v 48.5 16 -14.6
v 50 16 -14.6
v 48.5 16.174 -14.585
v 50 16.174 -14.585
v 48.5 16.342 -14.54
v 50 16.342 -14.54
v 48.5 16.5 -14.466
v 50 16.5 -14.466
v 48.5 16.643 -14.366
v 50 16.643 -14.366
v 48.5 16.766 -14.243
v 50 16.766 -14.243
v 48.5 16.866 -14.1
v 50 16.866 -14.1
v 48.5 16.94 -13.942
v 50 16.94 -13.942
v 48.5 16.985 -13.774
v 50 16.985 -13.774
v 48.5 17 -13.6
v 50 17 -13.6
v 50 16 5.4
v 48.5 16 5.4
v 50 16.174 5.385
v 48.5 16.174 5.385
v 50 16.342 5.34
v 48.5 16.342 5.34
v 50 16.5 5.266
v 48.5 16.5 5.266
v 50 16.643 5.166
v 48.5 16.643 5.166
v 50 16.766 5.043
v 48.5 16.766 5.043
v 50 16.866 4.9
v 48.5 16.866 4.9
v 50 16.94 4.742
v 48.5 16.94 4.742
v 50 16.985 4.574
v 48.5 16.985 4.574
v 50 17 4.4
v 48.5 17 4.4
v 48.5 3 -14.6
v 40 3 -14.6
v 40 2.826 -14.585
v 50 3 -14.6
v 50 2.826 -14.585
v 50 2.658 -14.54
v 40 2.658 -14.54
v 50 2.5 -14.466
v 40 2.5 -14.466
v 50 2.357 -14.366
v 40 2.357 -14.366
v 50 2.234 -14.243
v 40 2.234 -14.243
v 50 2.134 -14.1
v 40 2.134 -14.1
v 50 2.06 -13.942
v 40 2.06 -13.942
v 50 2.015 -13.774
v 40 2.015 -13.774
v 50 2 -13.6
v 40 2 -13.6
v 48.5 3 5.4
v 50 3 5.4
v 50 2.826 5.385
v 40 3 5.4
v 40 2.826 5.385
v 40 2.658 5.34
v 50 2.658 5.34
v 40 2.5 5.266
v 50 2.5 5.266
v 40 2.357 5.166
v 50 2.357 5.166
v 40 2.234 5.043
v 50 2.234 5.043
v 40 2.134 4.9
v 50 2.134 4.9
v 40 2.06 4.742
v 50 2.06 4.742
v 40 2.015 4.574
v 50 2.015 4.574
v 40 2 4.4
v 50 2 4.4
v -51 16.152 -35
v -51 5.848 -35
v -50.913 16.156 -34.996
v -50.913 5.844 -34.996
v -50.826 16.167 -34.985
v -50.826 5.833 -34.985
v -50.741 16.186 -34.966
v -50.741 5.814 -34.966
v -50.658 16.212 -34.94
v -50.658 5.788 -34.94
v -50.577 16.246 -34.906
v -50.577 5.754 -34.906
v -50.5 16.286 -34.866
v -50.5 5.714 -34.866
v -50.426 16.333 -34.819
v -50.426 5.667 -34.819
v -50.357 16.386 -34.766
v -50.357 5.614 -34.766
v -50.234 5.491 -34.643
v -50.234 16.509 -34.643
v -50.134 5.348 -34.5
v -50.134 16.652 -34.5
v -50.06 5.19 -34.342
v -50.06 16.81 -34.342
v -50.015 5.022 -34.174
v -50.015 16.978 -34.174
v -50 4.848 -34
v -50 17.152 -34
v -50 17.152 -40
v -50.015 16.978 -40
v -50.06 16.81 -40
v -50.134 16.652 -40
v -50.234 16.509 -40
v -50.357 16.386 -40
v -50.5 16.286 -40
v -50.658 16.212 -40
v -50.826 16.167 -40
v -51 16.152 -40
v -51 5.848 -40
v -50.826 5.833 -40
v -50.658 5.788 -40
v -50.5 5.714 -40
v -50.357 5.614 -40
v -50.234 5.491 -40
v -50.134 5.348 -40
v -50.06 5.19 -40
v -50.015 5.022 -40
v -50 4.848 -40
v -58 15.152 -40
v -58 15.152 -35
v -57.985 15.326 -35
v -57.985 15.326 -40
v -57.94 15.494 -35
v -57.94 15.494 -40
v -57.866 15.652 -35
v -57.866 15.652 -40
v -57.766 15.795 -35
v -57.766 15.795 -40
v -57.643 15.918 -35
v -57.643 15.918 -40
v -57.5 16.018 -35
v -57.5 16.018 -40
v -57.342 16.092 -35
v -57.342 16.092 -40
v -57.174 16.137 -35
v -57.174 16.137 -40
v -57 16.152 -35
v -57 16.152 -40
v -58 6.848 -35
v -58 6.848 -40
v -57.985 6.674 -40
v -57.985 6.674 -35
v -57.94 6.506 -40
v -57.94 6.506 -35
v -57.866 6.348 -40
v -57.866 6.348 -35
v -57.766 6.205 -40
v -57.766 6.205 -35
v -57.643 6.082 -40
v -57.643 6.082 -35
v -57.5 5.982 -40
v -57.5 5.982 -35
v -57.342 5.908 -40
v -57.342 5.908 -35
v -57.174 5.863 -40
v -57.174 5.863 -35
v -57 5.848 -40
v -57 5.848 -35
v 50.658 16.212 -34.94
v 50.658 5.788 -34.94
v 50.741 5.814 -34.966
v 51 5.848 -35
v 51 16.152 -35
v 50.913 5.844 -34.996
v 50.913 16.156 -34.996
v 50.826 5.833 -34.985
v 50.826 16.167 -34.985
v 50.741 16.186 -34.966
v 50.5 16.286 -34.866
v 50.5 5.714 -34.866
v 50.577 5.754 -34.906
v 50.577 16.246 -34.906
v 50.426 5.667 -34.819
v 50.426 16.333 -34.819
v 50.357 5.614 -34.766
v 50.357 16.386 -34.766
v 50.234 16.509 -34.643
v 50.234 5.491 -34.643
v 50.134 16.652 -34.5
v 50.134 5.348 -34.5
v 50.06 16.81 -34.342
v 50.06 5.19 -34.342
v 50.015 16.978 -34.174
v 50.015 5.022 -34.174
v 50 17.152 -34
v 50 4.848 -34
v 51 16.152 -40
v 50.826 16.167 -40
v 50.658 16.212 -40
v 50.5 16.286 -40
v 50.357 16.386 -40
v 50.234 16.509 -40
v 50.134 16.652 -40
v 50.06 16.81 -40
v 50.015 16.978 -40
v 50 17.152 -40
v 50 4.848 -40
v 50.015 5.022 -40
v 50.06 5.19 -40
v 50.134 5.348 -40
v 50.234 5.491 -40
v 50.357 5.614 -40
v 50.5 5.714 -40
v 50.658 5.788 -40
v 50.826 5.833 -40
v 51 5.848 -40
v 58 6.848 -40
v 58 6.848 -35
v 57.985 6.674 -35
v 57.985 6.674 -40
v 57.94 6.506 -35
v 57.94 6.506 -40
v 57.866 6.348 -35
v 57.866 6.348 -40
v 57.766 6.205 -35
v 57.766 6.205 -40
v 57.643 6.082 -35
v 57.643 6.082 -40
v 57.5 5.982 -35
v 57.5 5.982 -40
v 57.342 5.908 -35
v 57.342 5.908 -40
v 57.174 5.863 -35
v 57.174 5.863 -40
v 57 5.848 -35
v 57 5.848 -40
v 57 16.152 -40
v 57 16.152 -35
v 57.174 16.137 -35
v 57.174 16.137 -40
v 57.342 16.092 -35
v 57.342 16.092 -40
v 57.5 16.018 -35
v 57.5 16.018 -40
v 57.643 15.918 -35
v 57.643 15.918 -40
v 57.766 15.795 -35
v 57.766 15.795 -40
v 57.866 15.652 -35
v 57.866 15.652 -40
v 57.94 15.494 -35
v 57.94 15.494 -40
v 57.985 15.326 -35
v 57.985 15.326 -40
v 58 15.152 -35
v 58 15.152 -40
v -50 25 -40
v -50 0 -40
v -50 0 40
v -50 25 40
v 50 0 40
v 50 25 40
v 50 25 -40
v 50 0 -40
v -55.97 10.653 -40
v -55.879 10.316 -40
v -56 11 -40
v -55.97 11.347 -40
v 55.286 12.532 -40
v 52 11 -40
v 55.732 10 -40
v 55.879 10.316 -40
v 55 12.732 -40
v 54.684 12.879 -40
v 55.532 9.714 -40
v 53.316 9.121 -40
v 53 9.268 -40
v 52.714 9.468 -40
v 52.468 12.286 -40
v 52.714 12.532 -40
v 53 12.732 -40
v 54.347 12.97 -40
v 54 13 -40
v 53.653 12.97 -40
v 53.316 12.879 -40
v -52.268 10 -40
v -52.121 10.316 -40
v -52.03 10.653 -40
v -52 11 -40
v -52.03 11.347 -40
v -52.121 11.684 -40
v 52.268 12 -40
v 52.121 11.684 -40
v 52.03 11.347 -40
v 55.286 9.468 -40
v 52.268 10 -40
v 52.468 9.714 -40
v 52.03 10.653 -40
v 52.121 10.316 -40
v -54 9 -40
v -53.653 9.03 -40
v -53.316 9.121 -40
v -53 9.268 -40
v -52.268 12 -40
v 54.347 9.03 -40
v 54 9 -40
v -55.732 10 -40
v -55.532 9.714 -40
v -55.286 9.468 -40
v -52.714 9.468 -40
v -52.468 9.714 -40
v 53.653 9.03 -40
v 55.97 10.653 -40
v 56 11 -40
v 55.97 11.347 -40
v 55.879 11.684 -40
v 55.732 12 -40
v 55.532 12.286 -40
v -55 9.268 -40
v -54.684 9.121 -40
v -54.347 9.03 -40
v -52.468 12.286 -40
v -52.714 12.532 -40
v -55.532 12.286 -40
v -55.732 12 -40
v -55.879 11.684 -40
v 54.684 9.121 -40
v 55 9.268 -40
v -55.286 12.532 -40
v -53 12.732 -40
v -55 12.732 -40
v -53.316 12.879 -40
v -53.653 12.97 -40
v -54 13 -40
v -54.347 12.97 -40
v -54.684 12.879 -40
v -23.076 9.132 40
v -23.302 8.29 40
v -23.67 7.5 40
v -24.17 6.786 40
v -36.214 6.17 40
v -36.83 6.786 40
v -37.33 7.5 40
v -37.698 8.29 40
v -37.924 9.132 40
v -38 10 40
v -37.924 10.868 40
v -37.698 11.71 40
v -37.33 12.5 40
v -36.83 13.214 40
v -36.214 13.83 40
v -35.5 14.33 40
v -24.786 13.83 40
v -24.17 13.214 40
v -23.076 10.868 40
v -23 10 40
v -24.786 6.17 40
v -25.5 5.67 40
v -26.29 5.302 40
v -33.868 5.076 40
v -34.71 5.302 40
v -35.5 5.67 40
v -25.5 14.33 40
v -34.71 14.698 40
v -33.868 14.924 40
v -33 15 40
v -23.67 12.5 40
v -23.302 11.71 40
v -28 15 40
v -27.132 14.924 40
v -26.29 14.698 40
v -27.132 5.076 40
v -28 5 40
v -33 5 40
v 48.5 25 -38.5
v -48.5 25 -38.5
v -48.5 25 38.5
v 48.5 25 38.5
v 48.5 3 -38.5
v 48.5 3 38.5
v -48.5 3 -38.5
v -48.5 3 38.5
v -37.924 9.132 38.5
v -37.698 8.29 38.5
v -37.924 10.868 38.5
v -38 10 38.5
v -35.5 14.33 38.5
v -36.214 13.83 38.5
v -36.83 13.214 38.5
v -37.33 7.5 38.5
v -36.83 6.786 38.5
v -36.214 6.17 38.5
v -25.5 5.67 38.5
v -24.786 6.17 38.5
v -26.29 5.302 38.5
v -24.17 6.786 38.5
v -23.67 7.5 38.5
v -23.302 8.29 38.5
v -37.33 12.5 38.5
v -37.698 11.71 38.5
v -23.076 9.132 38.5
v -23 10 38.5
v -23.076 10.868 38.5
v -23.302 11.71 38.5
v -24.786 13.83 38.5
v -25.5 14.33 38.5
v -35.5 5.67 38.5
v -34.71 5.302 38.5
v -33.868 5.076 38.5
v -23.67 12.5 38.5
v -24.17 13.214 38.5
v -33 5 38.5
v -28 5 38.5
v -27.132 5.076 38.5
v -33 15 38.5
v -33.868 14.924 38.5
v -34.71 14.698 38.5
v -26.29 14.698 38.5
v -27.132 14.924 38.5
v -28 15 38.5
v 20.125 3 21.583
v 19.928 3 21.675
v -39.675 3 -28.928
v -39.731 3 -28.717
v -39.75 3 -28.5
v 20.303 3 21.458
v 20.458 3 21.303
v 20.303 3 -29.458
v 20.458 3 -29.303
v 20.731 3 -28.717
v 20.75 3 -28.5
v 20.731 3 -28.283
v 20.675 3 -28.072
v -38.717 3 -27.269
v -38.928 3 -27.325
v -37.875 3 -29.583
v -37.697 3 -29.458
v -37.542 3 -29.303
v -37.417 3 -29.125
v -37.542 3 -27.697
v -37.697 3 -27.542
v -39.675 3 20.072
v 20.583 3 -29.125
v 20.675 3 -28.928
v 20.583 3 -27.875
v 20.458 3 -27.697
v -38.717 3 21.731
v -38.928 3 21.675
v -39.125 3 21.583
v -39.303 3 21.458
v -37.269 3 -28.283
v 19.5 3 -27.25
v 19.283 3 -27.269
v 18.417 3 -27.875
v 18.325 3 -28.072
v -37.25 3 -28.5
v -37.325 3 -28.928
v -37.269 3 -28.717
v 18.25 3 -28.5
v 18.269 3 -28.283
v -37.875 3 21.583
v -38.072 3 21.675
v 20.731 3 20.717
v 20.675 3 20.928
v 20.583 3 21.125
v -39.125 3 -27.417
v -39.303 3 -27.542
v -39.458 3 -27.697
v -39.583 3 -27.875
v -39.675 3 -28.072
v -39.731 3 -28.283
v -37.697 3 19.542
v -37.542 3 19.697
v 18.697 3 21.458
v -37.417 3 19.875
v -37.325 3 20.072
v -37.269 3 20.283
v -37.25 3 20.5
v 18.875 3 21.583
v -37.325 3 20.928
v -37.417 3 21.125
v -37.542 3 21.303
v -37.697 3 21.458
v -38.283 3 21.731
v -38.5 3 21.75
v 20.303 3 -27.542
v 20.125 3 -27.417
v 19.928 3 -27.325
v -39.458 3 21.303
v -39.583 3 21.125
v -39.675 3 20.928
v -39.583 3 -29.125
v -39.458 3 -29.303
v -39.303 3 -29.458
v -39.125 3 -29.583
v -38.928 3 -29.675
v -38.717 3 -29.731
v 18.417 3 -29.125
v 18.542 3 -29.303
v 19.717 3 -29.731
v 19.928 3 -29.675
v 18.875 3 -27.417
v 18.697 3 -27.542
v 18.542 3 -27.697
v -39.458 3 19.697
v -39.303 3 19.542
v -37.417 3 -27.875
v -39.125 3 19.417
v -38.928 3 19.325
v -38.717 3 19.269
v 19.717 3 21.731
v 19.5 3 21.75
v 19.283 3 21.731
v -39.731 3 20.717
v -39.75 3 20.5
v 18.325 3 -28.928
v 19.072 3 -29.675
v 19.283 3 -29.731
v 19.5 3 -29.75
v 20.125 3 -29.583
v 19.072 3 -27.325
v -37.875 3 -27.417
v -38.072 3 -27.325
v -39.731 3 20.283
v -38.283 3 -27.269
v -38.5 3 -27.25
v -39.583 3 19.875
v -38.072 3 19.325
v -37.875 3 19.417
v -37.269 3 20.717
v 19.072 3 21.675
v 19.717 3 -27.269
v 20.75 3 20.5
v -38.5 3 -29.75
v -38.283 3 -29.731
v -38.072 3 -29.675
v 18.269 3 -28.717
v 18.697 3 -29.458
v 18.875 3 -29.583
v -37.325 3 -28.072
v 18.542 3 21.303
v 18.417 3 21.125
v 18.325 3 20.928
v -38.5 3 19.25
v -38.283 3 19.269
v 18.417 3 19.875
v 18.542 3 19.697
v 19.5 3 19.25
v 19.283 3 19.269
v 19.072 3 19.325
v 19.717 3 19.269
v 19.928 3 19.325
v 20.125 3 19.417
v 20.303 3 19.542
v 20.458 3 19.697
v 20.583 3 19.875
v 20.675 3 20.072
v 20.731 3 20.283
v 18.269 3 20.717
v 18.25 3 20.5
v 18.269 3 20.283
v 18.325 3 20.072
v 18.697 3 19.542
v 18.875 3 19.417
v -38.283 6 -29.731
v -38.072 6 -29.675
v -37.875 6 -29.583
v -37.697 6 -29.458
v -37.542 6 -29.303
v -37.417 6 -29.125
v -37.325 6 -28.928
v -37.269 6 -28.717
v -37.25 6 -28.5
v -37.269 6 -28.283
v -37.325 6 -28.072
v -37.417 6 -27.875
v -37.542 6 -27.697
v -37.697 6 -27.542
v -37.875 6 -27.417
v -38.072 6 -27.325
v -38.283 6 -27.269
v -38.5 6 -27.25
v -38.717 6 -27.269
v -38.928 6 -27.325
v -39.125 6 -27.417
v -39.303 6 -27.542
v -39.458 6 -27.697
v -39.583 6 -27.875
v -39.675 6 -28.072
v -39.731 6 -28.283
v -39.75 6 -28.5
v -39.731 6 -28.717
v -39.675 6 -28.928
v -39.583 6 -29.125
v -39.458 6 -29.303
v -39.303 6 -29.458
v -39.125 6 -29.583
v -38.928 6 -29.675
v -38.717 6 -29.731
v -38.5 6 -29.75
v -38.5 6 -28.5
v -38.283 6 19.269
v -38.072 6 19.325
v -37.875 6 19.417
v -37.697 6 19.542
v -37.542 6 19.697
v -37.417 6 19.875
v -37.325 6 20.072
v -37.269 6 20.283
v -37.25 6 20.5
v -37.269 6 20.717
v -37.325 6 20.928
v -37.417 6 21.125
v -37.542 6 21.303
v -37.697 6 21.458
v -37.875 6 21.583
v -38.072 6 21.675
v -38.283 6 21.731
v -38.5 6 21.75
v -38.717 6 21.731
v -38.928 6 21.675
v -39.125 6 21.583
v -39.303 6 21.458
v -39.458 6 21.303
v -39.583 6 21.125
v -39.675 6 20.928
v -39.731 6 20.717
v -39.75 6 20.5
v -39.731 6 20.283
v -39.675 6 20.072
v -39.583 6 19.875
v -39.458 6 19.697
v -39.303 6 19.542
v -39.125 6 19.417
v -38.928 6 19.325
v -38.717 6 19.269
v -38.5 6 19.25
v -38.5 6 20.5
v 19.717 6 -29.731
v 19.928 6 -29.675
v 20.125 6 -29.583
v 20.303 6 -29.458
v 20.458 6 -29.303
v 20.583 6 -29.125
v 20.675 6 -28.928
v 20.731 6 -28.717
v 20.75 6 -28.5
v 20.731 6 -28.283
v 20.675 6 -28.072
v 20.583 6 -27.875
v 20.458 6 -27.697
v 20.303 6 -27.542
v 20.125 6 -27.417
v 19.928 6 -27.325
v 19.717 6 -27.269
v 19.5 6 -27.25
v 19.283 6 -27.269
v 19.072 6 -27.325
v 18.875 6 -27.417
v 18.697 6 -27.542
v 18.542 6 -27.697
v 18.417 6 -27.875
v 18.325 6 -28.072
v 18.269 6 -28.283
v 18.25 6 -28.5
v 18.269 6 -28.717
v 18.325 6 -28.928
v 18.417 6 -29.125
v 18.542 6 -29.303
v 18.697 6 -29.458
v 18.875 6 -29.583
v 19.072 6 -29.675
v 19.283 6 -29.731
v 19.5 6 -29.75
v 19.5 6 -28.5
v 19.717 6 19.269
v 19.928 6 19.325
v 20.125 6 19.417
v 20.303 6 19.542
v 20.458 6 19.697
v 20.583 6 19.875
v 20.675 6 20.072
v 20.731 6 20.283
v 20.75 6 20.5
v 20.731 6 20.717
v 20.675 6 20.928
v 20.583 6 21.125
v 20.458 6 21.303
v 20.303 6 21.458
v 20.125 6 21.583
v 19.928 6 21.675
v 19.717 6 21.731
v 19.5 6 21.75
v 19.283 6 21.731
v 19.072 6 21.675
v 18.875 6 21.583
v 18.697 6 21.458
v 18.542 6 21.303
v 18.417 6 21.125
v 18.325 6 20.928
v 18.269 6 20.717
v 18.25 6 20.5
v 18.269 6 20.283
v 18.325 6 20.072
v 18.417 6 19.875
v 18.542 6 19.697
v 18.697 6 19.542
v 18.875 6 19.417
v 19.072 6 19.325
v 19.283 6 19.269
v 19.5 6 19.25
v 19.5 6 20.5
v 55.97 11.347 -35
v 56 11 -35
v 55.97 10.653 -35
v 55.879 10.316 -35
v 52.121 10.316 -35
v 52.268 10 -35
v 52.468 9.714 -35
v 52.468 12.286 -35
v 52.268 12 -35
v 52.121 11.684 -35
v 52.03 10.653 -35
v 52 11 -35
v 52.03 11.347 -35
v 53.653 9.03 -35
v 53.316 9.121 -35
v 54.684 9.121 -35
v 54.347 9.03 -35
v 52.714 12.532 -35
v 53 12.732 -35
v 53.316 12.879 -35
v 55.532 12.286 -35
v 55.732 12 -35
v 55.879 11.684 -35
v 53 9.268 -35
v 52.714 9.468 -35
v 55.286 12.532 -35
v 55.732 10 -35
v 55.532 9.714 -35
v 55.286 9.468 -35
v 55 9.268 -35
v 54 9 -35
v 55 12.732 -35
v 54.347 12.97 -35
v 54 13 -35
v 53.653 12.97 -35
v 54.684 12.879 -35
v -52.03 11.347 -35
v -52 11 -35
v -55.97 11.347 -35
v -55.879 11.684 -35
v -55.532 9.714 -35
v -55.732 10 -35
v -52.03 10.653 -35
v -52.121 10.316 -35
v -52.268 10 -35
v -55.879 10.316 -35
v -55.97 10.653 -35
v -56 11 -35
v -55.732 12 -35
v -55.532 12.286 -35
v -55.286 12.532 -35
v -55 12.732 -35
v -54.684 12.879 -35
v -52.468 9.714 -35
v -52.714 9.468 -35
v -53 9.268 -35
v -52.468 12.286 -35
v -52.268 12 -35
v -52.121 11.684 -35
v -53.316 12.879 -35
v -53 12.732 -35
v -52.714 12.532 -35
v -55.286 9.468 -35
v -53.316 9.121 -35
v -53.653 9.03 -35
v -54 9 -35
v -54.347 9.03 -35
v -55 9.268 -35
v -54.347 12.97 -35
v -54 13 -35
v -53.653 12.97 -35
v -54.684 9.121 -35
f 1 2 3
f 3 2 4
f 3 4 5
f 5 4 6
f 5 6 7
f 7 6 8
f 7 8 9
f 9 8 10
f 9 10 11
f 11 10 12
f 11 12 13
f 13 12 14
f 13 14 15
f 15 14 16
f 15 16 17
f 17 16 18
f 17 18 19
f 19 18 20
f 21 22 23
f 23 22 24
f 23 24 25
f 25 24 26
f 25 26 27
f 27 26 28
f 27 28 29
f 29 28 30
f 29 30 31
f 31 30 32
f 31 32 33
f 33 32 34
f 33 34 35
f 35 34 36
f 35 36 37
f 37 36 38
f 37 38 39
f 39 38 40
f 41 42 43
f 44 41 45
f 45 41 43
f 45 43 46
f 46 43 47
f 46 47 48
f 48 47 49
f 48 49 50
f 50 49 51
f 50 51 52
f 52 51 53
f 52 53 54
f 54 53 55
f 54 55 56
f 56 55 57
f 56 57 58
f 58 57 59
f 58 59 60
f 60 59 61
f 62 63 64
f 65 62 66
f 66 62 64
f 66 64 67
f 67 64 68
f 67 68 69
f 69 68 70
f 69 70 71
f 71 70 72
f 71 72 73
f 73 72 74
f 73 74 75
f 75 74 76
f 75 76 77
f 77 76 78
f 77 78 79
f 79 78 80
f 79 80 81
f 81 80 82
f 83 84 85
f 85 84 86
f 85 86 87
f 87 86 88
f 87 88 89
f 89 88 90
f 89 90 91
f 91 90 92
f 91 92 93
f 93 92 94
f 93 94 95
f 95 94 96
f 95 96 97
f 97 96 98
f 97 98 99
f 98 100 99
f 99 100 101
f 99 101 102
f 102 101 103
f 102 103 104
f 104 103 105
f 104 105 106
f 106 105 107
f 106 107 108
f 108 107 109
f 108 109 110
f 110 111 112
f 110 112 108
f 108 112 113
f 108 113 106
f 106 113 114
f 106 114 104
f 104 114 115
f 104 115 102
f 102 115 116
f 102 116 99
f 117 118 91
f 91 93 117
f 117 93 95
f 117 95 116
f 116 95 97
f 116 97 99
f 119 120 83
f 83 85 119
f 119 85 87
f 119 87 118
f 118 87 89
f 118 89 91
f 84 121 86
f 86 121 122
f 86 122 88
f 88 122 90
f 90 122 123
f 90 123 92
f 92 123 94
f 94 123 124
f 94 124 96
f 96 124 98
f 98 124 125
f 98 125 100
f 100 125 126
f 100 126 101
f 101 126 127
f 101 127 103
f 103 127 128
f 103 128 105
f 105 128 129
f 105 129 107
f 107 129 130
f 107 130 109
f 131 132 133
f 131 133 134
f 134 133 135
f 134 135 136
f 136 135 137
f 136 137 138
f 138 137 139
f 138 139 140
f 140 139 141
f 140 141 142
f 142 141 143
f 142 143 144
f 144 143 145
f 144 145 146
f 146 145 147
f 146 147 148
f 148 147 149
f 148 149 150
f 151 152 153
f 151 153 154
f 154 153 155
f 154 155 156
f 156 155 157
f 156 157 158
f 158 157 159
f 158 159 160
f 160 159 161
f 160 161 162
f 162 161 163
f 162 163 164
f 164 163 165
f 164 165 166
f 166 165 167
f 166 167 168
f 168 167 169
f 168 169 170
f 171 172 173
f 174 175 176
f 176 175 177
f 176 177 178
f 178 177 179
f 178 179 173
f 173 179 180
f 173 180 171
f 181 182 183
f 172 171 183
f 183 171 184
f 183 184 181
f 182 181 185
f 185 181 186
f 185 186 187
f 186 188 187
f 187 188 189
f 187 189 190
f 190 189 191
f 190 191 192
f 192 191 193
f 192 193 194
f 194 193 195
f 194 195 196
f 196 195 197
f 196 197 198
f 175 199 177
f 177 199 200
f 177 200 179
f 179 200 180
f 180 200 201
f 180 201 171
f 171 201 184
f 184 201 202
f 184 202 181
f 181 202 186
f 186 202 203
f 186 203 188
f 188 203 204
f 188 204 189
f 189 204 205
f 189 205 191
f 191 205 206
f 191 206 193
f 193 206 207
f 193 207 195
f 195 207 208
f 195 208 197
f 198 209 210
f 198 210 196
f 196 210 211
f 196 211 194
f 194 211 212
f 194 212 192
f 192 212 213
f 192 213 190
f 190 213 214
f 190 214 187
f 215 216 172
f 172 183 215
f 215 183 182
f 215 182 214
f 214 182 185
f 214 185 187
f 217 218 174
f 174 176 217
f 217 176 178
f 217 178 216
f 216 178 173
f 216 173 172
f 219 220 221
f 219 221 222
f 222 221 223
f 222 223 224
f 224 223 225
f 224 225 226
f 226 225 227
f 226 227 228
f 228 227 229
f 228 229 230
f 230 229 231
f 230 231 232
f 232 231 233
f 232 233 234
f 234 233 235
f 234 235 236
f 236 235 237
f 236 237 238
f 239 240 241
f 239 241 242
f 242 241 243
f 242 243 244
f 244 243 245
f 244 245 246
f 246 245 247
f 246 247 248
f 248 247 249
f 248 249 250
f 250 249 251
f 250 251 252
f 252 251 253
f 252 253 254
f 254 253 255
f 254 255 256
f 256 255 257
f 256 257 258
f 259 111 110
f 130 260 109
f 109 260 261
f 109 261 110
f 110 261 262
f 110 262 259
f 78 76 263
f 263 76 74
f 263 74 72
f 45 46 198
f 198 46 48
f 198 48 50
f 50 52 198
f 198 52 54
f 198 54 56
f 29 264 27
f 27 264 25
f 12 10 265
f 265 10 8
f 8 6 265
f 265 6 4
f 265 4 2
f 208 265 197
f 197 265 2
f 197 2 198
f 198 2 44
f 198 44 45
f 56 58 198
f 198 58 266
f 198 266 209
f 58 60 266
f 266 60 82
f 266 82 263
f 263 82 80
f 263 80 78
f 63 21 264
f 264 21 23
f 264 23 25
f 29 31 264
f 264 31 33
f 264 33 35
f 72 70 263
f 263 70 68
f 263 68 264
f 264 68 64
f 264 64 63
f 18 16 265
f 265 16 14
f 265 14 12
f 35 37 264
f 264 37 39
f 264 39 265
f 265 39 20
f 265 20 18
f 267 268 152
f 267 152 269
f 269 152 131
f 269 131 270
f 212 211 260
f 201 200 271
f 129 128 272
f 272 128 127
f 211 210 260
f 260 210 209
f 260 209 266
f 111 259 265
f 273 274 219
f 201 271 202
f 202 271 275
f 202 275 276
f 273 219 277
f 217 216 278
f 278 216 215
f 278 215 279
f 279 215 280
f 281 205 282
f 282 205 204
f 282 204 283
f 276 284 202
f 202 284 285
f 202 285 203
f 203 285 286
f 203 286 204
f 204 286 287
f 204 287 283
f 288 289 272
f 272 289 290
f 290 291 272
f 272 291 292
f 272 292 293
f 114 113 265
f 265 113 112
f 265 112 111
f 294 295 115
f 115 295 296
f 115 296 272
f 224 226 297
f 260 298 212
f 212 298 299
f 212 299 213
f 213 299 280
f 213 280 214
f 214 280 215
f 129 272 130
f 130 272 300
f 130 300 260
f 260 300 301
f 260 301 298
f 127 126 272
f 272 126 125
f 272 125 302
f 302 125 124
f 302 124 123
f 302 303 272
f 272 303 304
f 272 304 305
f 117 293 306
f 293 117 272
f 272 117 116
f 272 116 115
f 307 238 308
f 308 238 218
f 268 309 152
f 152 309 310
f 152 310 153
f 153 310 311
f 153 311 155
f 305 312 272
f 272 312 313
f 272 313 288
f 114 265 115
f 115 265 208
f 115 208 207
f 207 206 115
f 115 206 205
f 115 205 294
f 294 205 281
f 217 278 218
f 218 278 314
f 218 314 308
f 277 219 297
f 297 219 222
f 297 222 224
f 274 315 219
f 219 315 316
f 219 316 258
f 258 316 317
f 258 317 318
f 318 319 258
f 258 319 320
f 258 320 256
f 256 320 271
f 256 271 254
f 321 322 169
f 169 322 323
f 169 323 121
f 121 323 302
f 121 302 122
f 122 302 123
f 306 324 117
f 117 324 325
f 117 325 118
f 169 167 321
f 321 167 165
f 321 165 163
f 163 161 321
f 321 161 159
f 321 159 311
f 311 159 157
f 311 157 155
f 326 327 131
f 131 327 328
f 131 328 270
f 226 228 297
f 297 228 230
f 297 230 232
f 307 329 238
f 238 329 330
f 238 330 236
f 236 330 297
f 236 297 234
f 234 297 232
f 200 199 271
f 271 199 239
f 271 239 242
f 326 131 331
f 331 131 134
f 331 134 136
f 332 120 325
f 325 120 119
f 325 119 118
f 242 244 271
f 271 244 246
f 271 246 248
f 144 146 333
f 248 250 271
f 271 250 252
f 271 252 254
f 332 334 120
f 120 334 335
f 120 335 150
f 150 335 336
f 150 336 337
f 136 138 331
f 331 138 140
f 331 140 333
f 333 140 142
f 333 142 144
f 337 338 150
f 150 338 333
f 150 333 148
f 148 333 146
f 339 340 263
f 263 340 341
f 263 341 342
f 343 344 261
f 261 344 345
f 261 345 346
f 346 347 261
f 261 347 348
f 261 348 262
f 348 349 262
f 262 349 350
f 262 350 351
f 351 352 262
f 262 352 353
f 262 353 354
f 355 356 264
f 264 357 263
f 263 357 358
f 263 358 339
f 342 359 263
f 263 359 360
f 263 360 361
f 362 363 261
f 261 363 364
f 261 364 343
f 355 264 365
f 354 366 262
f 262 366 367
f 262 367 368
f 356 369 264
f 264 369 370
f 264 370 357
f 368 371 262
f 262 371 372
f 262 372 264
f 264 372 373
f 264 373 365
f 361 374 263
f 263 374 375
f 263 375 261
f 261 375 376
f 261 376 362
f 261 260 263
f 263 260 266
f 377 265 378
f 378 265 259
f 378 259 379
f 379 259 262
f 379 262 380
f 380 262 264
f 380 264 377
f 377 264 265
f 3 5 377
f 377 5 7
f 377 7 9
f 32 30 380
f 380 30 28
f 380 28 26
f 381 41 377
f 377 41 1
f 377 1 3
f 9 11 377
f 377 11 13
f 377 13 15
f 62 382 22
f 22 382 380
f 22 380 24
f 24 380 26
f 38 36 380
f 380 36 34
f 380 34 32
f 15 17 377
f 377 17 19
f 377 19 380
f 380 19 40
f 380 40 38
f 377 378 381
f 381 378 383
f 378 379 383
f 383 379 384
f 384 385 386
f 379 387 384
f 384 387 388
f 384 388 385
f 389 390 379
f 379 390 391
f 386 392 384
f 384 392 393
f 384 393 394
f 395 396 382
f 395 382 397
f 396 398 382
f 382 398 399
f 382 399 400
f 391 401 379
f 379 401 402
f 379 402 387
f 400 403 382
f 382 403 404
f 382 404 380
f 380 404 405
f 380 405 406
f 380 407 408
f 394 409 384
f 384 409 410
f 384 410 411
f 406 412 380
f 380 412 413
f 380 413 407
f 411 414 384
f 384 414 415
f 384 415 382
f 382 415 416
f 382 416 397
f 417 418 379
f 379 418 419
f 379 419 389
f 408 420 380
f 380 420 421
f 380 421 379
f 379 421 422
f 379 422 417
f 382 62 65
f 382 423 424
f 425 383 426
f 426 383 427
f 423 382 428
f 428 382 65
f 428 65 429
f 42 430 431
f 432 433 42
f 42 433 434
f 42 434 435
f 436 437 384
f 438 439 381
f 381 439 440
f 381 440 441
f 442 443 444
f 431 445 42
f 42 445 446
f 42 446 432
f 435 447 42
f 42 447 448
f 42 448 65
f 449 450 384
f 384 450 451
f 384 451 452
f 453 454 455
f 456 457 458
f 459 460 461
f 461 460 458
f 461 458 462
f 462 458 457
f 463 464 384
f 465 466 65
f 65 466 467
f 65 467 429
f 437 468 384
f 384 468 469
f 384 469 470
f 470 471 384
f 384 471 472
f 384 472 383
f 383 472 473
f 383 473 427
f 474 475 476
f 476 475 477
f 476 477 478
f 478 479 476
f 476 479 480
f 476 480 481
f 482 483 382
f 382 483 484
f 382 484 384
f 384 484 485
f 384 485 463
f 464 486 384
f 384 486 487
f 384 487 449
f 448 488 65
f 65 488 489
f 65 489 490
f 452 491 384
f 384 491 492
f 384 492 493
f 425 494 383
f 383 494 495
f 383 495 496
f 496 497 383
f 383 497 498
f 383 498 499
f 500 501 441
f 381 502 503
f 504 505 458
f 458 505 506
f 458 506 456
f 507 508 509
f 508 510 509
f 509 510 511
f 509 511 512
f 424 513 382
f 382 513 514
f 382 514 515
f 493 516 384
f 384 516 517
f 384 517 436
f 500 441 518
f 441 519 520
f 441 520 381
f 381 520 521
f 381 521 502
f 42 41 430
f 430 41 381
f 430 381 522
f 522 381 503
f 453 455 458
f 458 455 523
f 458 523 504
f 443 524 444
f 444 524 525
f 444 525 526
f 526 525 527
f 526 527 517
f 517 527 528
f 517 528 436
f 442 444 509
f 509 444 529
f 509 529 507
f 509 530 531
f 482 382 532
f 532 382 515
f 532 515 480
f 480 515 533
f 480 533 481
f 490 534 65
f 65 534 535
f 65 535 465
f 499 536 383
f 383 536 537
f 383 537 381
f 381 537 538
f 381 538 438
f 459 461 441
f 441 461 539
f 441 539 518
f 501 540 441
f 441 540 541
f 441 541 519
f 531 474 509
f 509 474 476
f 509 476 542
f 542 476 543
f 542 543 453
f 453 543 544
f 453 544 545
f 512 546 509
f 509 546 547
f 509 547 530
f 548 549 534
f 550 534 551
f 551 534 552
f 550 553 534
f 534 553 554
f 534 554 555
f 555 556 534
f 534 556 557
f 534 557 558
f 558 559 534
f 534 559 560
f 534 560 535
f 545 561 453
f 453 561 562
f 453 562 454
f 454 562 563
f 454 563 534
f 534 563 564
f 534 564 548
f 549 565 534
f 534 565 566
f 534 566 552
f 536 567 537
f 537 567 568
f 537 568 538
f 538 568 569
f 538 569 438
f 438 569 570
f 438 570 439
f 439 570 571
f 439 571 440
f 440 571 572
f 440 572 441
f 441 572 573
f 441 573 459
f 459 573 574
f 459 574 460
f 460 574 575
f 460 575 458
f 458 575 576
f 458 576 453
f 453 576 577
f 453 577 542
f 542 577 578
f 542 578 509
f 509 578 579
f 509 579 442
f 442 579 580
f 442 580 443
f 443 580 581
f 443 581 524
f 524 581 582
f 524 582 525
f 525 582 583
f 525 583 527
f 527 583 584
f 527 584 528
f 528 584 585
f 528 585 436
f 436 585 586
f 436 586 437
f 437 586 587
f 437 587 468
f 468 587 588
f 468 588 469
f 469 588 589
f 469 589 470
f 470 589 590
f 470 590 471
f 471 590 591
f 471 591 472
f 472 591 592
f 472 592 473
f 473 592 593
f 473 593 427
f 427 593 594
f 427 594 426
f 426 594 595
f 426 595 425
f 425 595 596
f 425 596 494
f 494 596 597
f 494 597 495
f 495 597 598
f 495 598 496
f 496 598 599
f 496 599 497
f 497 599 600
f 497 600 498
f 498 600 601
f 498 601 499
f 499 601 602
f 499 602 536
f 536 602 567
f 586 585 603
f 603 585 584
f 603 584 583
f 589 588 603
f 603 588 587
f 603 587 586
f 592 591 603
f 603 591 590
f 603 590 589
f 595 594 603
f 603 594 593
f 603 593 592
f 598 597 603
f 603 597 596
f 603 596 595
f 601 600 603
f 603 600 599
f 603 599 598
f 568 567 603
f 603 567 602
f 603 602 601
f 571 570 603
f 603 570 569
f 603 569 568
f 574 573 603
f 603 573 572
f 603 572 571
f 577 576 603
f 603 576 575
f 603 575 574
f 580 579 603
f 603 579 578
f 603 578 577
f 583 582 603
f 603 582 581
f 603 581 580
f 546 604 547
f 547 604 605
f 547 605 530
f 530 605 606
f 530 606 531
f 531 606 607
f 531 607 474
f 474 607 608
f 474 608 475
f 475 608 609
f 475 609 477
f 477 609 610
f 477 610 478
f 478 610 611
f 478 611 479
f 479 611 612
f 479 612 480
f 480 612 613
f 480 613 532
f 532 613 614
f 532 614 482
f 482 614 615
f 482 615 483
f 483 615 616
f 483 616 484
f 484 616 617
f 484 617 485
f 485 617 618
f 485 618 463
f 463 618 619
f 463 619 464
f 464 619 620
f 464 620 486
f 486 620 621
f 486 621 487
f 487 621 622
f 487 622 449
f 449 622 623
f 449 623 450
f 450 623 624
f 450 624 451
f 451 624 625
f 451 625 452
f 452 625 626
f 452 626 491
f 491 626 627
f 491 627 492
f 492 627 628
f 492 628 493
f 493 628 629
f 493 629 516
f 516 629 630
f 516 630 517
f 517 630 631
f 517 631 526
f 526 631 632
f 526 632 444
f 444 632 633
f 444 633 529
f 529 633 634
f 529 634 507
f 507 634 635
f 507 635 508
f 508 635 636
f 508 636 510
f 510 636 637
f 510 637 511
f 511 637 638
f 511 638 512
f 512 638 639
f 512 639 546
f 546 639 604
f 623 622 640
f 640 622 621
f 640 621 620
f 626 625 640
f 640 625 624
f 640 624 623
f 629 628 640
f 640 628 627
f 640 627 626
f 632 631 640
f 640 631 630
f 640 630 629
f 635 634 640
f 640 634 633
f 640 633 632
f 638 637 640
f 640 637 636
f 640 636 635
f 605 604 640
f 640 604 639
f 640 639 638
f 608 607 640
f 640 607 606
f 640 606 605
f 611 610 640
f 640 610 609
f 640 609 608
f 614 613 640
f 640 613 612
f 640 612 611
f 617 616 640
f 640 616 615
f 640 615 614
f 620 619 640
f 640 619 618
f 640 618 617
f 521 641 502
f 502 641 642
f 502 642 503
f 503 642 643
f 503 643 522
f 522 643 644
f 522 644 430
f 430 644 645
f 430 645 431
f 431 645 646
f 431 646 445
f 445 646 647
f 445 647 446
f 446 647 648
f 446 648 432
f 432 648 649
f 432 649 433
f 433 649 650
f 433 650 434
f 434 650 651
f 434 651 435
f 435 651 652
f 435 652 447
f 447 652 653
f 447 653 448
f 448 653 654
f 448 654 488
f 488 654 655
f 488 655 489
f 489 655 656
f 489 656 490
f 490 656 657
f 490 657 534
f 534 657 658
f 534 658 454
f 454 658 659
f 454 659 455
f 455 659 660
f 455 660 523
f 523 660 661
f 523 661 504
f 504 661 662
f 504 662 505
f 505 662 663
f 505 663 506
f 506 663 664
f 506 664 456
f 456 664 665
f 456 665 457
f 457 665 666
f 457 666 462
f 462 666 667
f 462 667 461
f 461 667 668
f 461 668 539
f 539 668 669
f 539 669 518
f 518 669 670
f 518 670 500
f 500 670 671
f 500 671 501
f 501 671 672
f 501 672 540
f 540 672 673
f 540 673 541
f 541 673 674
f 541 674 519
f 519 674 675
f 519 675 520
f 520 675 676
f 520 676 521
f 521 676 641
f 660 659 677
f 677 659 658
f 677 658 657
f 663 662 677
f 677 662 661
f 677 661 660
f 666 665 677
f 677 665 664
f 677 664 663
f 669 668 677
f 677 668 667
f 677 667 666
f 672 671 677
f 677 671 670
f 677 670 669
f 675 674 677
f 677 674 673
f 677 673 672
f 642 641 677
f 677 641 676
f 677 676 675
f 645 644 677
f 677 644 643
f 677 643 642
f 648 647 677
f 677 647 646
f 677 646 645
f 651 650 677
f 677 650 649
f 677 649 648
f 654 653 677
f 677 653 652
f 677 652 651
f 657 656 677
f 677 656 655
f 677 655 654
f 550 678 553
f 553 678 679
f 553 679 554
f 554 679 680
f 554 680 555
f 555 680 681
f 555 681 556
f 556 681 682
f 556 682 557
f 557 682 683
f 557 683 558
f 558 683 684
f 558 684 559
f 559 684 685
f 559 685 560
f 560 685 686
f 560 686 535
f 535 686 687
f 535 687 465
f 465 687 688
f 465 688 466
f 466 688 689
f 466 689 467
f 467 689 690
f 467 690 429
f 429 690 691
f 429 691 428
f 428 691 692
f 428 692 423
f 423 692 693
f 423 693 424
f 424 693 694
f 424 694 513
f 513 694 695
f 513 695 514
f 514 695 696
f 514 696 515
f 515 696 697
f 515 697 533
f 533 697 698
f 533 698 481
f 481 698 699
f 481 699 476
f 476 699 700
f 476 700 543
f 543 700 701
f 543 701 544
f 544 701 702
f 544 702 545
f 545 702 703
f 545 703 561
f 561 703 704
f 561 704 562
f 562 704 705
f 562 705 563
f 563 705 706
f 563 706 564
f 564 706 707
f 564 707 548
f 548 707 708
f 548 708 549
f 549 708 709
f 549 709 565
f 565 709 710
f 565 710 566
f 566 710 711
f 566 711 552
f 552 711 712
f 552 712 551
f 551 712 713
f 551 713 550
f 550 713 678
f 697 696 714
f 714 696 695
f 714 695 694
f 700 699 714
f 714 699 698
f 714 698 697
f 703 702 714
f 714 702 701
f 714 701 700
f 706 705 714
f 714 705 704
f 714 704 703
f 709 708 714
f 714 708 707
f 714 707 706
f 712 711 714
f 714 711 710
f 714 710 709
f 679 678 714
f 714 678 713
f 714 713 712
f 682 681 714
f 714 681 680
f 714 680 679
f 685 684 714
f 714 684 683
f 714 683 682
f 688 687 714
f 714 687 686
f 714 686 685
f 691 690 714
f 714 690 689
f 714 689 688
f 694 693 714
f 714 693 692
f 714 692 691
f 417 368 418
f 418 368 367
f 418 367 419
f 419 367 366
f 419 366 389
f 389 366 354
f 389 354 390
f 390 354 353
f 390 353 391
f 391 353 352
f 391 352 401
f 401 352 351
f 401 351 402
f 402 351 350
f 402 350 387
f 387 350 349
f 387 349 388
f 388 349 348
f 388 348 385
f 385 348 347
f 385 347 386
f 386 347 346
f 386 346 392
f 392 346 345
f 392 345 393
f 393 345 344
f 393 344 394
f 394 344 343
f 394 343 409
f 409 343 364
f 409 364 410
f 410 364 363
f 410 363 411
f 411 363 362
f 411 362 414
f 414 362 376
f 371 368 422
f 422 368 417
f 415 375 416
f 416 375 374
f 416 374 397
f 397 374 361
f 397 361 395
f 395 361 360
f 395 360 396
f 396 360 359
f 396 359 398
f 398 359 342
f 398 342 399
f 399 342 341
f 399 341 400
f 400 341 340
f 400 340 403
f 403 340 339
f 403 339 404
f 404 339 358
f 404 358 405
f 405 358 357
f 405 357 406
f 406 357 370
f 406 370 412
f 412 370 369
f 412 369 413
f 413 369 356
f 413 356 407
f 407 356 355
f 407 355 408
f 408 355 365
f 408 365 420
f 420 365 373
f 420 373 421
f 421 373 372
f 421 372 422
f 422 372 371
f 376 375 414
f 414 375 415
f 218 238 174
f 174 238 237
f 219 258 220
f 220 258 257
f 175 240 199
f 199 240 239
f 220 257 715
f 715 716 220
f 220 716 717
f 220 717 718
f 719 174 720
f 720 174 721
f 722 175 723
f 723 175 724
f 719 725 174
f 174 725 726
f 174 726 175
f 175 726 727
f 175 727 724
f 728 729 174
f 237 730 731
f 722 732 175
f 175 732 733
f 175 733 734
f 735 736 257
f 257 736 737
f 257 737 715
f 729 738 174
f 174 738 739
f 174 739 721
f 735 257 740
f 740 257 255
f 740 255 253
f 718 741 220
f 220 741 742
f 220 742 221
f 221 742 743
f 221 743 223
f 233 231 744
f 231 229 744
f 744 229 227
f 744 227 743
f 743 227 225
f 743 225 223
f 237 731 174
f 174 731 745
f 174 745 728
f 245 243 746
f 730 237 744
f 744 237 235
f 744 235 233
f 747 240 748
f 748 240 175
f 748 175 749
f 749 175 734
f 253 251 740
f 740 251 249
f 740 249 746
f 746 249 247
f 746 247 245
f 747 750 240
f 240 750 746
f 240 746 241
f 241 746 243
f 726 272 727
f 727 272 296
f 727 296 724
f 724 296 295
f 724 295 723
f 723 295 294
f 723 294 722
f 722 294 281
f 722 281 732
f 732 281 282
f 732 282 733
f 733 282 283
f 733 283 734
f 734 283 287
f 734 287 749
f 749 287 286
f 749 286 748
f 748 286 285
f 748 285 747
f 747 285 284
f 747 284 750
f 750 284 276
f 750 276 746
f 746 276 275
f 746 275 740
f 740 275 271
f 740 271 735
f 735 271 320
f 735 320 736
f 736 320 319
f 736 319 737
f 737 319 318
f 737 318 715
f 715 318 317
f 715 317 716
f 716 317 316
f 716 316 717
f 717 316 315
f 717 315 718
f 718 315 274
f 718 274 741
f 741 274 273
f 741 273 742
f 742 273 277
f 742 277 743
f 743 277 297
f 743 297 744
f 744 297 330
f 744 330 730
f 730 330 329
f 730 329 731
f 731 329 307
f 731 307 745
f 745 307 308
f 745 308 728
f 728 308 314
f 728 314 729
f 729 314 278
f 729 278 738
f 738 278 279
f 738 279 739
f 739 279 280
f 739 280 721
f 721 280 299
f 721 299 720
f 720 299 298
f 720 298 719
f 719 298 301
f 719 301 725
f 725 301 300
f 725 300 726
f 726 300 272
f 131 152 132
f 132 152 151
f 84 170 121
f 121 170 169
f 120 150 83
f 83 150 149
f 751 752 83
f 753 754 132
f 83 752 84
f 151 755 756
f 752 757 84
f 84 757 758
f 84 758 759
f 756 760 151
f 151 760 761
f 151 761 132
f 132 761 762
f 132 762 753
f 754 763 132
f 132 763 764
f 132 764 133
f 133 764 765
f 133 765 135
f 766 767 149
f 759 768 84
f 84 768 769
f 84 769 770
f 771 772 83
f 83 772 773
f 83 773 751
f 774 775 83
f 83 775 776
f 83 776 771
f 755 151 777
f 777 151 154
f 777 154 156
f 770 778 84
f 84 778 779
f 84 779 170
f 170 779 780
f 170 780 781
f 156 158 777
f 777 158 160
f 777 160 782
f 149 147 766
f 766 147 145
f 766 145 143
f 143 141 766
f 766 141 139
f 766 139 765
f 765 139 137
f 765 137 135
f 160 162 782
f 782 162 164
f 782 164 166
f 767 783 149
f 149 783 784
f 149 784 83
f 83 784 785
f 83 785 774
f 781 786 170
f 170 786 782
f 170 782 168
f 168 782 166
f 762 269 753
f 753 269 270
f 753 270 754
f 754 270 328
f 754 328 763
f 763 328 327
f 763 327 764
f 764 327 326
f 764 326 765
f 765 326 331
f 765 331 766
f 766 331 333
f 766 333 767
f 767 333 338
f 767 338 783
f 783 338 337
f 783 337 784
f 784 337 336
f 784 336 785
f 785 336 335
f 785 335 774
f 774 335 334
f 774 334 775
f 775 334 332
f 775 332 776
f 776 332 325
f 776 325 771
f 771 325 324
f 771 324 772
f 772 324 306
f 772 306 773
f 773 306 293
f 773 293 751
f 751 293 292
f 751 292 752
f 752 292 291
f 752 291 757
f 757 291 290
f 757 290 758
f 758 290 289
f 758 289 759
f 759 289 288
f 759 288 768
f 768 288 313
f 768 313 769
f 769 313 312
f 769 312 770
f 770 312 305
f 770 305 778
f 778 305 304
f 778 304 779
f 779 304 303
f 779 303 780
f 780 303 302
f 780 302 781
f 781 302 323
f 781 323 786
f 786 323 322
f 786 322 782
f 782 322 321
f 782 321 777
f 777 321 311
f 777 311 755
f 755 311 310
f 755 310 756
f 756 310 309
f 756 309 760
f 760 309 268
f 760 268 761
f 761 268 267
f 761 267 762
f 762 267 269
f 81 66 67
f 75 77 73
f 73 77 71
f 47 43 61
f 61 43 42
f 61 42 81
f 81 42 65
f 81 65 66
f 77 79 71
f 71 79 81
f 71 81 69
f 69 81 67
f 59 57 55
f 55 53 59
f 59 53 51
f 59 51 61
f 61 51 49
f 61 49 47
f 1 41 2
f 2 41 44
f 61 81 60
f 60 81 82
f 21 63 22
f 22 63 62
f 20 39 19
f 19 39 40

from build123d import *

# Parameters (mm, degrees)
SKETCH1_W           = 100
SKETCH1_H           = 80
BOSS_EXTRUDE1_DEPTH = 3
SKETCH2_W           = 100
SKETCH2_H           = 80
SKETCH2_W_2         = 97
SKETCH2_H_2         = 77
BOSS_EXTRUDE2_DEPTH = 22
SKETCH3_R           = 1.25
BOSS_EXTRUDE3_DEPTH = 3
CUT_EXTRUDE1_DEPTH  = 3
SKETCH5_W           = 8
SKETCH5_H           = 10.304098564
SKETCH5_R           = 2
BOSS_EXTRUDE4_DEPTH = 5
FILLET8_R           = 1
FILLET9_R           = 1
FILLET10_R          = 1
FILLET11_R          = 1
FILLET12_R          = 1
FILLET13_R          = 1
FILLET14_R          = 1
FILLET15_R          = 1
FILLET16_R          = 1
FILLET17_R          = 1
SKETCH6_W           = 20
SKETCH6_H           = 15
CUT_EXTRUDE2_DEPTH  = 10
FILLET18_R          = 1
FILLET19_R          = 1
FILLET20_R          = 1
FILLET22_R          = 1


with BuildPart() as part:
    # Sketch1 → Boss-Extrude1 (new body)
    with BuildSketch(Plane(origin=(0, 0, 0), x_dir=(1, 0, 0), z_dir=(0, 1, 0))):
        Rectangle(SKETCH1_W, SKETCH1_H)
    extrude(amount=BOSS_EXTRUDE1_DEPTH)

    # Sketch2 → Boss-Extrude2 (add)
    with BuildSketch(Plane(origin=(0, 3, 0), x_dir=(1, 0, 0), z_dir=(0, 1, 0))):
        Rectangle(SKETCH2_W, SKETCH2_H)
        Rectangle(SKETCH2_W_2, SKETCH2_H_2, mode=Mode.SUBTRACT)
    extrude(amount=BOSS_EXTRUDE2_DEPTH)

    # Sketch3 → Boss-Extrude3 (add)
    with BuildSketch(Plane(origin=(0, 3, 0), x_dir=(1, 0, 0), z_dir=(0, 1, 0))):
        with Locations(Location((-38.5, 28.5, 0), (0, 0, 90))):
            Circle(SKETCH3_R)
        with Locations(Location((-38.5, -20.5, 0), (0, 0, 90))):
            Circle(SKETCH3_R)
        with Locations(Location((19.5, 28.5, 0), (0, 0, 90))):
            Circle(SKETCH3_R)
        with Locations(Location((19.5, -20.5, 0), (0, 0, 90))):
            Circle(SKETCH3_R)
    extrude(amount=BOSS_EXTRUDE3_DEPTH)

    # Sketch4 → Cut-Extrude1 (cut)
    with BuildSketch(Plane.XY.offset(40)):
        with BuildLine():
            Line((-33, 15), (-28, 15))
            ThreePointArc((-28, 15), (-23, 10), (-28, 5))
            Line((-28, 5), (-33, 5))
            ThreePointArc((-33, 5), (-38, 10), (-33, 15))
        make_face()
    extrude(amount=-CUT_EXTRUDE1_DEPTH, mode=Mode.SUBTRACT)

    # Sketch5 → Boss-Extrude4 (add)
    # profile 1 of 2: a face of its own
    with BuildSketch(Plane(origin=(0, 0, -40), x_dir=(-1, 0, 0), z_dir=(0, 0, -1))):
        with Locations((54, 11)):
            Rectangle(SKETCH5_W, SKETCH5_H)
        with Locations((54, 11)):
            Circle(SKETCH5_R, mode=Mode.SUBTRACT)
    # profile 2 of 2: a face of its own
    with BuildSketch(Plane(origin=(0, 0, -40), x_dir=(-1, 0, 0), z_dir=(0, 0, -1))):
        with Locations((-54, 11)):
            Rectangle(SKETCH5_W, SKETCH5_H)
        with Locations((-54, 11)):
            Circle(SKETCH5_R, mode=Mode.SUBTRACT)
    extrude(amount=-BOSS_EXTRUDE4_DEPTH)

    # Fillet8
    fillet8_edges = [part.edges().sort_by_distance(p)[0] for p in [
        (58, 16.152049282, -37.5),
    ]]
    fillet(fillet8_edges, radius=FILLET8_R)

    # Fillet9
    fillet9_edges = [part.edges().sort_by_distance(p)[0] for p in [
        (58, 5.847950718, -37.5),
    ]]
    fillet(fillet9_edges, radius=FILLET9_R)

    # Fillet10
    fillet10_edges = [part.edges().sort_by_distance(p)[0] for p in [
        (50, 5.847950718, -37.5),
    ]]
    fillet(fillet10_edges, radius=FILLET10_R)

    # Fillet11
    fillet11_edges = [part.edges().sort_by_distance(p)[0] for p in [
        (50, 16.152049282, -37.5),
    ]]
    fillet(fillet11_edges, radius=FILLET11_R)

    # Fillet12
    fillet12_edges = [part.edges().sort_by_distance(p)[0] for p in [
        (50, 11, -35),
    ]]
    fillet(fillet12_edges, radius=FILLET12_R)

    # Fillet13
    fillet13_edges = [part.edges().sort_by_distance(p)[0] for p in [
        (-58, 5.847950718, -37.5),
    ]]
    fillet(fillet13_edges, radius=FILLET13_R)

    # Fillet14
    fillet14_edges = [part.edges().sort_by_distance(p)[0] for p in [
        (-58, 16.152049282, -37.5),
    ]]
    fillet(fillet14_edges, radius=FILLET14_R)

    # Fillet15
    fillet15_edges = [part.edges().sort_by_distance(p)[0] for p in [
        (-50, 5.847950718, -37.5),
    ]]
    fillet(fillet15_edges, radius=FILLET15_R)

    # Fillet16
    fillet16_edges = [part.edges().sort_by_distance(p)[0] for p in [
        (-50, 16.152049282, -37.5),
    ]]
    fillet(fillet16_edges, radius=FILLET16_R)

    # Fillet17
    fillet17_edges = [part.edges().sort_by_distance(p)[0] for p in [
        (-50, 11, -35),
    ]]
    fillet(fillet17_edges, radius=FILLET17_R)

    # Sketch6 → Cut-Extrude2 (cut)
    with BuildSketch(Plane(origin=(50, 0, 0), x_dir=(0, 0, -1), z_dir=(1, 0, 0))):
        with Locations((4.6, 9.5)):
            Rectangle(SKETCH6_W, SKETCH6_H)
    extrude(amount=-CUT_EXTRUDE2_DEPTH, mode=Mode.SUBTRACT)

    # Fillet18
    fillet18_edges = [part.edges().sort_by_distance(p)[0] for p in [
        (45, 2, 5.4),
    ]]
    fillet(fillet18_edges, radius=FILLET18_R)

    # Fillet19
    fillet19_edges = [part.edges().sort_by_distance(p)[0] for p in [
        (45, 2, -14.6),
    ]]
    fillet(fillet19_edges, radius=FILLET19_R)

    # Fillet20
    fillet20_edges = [part.edges().sort_by_distance(p)[0] for p in [
        (49.25, 17, 5.4),
    ]]
    fillet(fillet20_edges, radius=FILLET20_R)

    # Fillet22
    fillet22_edges = [part.edges().sort_by_distance(p)[0] for p in [
        (49.25, 17, -14.6),
    ]]
    fillet(fillet22_edges, radius=FILLET22_R)


solid = part.part
